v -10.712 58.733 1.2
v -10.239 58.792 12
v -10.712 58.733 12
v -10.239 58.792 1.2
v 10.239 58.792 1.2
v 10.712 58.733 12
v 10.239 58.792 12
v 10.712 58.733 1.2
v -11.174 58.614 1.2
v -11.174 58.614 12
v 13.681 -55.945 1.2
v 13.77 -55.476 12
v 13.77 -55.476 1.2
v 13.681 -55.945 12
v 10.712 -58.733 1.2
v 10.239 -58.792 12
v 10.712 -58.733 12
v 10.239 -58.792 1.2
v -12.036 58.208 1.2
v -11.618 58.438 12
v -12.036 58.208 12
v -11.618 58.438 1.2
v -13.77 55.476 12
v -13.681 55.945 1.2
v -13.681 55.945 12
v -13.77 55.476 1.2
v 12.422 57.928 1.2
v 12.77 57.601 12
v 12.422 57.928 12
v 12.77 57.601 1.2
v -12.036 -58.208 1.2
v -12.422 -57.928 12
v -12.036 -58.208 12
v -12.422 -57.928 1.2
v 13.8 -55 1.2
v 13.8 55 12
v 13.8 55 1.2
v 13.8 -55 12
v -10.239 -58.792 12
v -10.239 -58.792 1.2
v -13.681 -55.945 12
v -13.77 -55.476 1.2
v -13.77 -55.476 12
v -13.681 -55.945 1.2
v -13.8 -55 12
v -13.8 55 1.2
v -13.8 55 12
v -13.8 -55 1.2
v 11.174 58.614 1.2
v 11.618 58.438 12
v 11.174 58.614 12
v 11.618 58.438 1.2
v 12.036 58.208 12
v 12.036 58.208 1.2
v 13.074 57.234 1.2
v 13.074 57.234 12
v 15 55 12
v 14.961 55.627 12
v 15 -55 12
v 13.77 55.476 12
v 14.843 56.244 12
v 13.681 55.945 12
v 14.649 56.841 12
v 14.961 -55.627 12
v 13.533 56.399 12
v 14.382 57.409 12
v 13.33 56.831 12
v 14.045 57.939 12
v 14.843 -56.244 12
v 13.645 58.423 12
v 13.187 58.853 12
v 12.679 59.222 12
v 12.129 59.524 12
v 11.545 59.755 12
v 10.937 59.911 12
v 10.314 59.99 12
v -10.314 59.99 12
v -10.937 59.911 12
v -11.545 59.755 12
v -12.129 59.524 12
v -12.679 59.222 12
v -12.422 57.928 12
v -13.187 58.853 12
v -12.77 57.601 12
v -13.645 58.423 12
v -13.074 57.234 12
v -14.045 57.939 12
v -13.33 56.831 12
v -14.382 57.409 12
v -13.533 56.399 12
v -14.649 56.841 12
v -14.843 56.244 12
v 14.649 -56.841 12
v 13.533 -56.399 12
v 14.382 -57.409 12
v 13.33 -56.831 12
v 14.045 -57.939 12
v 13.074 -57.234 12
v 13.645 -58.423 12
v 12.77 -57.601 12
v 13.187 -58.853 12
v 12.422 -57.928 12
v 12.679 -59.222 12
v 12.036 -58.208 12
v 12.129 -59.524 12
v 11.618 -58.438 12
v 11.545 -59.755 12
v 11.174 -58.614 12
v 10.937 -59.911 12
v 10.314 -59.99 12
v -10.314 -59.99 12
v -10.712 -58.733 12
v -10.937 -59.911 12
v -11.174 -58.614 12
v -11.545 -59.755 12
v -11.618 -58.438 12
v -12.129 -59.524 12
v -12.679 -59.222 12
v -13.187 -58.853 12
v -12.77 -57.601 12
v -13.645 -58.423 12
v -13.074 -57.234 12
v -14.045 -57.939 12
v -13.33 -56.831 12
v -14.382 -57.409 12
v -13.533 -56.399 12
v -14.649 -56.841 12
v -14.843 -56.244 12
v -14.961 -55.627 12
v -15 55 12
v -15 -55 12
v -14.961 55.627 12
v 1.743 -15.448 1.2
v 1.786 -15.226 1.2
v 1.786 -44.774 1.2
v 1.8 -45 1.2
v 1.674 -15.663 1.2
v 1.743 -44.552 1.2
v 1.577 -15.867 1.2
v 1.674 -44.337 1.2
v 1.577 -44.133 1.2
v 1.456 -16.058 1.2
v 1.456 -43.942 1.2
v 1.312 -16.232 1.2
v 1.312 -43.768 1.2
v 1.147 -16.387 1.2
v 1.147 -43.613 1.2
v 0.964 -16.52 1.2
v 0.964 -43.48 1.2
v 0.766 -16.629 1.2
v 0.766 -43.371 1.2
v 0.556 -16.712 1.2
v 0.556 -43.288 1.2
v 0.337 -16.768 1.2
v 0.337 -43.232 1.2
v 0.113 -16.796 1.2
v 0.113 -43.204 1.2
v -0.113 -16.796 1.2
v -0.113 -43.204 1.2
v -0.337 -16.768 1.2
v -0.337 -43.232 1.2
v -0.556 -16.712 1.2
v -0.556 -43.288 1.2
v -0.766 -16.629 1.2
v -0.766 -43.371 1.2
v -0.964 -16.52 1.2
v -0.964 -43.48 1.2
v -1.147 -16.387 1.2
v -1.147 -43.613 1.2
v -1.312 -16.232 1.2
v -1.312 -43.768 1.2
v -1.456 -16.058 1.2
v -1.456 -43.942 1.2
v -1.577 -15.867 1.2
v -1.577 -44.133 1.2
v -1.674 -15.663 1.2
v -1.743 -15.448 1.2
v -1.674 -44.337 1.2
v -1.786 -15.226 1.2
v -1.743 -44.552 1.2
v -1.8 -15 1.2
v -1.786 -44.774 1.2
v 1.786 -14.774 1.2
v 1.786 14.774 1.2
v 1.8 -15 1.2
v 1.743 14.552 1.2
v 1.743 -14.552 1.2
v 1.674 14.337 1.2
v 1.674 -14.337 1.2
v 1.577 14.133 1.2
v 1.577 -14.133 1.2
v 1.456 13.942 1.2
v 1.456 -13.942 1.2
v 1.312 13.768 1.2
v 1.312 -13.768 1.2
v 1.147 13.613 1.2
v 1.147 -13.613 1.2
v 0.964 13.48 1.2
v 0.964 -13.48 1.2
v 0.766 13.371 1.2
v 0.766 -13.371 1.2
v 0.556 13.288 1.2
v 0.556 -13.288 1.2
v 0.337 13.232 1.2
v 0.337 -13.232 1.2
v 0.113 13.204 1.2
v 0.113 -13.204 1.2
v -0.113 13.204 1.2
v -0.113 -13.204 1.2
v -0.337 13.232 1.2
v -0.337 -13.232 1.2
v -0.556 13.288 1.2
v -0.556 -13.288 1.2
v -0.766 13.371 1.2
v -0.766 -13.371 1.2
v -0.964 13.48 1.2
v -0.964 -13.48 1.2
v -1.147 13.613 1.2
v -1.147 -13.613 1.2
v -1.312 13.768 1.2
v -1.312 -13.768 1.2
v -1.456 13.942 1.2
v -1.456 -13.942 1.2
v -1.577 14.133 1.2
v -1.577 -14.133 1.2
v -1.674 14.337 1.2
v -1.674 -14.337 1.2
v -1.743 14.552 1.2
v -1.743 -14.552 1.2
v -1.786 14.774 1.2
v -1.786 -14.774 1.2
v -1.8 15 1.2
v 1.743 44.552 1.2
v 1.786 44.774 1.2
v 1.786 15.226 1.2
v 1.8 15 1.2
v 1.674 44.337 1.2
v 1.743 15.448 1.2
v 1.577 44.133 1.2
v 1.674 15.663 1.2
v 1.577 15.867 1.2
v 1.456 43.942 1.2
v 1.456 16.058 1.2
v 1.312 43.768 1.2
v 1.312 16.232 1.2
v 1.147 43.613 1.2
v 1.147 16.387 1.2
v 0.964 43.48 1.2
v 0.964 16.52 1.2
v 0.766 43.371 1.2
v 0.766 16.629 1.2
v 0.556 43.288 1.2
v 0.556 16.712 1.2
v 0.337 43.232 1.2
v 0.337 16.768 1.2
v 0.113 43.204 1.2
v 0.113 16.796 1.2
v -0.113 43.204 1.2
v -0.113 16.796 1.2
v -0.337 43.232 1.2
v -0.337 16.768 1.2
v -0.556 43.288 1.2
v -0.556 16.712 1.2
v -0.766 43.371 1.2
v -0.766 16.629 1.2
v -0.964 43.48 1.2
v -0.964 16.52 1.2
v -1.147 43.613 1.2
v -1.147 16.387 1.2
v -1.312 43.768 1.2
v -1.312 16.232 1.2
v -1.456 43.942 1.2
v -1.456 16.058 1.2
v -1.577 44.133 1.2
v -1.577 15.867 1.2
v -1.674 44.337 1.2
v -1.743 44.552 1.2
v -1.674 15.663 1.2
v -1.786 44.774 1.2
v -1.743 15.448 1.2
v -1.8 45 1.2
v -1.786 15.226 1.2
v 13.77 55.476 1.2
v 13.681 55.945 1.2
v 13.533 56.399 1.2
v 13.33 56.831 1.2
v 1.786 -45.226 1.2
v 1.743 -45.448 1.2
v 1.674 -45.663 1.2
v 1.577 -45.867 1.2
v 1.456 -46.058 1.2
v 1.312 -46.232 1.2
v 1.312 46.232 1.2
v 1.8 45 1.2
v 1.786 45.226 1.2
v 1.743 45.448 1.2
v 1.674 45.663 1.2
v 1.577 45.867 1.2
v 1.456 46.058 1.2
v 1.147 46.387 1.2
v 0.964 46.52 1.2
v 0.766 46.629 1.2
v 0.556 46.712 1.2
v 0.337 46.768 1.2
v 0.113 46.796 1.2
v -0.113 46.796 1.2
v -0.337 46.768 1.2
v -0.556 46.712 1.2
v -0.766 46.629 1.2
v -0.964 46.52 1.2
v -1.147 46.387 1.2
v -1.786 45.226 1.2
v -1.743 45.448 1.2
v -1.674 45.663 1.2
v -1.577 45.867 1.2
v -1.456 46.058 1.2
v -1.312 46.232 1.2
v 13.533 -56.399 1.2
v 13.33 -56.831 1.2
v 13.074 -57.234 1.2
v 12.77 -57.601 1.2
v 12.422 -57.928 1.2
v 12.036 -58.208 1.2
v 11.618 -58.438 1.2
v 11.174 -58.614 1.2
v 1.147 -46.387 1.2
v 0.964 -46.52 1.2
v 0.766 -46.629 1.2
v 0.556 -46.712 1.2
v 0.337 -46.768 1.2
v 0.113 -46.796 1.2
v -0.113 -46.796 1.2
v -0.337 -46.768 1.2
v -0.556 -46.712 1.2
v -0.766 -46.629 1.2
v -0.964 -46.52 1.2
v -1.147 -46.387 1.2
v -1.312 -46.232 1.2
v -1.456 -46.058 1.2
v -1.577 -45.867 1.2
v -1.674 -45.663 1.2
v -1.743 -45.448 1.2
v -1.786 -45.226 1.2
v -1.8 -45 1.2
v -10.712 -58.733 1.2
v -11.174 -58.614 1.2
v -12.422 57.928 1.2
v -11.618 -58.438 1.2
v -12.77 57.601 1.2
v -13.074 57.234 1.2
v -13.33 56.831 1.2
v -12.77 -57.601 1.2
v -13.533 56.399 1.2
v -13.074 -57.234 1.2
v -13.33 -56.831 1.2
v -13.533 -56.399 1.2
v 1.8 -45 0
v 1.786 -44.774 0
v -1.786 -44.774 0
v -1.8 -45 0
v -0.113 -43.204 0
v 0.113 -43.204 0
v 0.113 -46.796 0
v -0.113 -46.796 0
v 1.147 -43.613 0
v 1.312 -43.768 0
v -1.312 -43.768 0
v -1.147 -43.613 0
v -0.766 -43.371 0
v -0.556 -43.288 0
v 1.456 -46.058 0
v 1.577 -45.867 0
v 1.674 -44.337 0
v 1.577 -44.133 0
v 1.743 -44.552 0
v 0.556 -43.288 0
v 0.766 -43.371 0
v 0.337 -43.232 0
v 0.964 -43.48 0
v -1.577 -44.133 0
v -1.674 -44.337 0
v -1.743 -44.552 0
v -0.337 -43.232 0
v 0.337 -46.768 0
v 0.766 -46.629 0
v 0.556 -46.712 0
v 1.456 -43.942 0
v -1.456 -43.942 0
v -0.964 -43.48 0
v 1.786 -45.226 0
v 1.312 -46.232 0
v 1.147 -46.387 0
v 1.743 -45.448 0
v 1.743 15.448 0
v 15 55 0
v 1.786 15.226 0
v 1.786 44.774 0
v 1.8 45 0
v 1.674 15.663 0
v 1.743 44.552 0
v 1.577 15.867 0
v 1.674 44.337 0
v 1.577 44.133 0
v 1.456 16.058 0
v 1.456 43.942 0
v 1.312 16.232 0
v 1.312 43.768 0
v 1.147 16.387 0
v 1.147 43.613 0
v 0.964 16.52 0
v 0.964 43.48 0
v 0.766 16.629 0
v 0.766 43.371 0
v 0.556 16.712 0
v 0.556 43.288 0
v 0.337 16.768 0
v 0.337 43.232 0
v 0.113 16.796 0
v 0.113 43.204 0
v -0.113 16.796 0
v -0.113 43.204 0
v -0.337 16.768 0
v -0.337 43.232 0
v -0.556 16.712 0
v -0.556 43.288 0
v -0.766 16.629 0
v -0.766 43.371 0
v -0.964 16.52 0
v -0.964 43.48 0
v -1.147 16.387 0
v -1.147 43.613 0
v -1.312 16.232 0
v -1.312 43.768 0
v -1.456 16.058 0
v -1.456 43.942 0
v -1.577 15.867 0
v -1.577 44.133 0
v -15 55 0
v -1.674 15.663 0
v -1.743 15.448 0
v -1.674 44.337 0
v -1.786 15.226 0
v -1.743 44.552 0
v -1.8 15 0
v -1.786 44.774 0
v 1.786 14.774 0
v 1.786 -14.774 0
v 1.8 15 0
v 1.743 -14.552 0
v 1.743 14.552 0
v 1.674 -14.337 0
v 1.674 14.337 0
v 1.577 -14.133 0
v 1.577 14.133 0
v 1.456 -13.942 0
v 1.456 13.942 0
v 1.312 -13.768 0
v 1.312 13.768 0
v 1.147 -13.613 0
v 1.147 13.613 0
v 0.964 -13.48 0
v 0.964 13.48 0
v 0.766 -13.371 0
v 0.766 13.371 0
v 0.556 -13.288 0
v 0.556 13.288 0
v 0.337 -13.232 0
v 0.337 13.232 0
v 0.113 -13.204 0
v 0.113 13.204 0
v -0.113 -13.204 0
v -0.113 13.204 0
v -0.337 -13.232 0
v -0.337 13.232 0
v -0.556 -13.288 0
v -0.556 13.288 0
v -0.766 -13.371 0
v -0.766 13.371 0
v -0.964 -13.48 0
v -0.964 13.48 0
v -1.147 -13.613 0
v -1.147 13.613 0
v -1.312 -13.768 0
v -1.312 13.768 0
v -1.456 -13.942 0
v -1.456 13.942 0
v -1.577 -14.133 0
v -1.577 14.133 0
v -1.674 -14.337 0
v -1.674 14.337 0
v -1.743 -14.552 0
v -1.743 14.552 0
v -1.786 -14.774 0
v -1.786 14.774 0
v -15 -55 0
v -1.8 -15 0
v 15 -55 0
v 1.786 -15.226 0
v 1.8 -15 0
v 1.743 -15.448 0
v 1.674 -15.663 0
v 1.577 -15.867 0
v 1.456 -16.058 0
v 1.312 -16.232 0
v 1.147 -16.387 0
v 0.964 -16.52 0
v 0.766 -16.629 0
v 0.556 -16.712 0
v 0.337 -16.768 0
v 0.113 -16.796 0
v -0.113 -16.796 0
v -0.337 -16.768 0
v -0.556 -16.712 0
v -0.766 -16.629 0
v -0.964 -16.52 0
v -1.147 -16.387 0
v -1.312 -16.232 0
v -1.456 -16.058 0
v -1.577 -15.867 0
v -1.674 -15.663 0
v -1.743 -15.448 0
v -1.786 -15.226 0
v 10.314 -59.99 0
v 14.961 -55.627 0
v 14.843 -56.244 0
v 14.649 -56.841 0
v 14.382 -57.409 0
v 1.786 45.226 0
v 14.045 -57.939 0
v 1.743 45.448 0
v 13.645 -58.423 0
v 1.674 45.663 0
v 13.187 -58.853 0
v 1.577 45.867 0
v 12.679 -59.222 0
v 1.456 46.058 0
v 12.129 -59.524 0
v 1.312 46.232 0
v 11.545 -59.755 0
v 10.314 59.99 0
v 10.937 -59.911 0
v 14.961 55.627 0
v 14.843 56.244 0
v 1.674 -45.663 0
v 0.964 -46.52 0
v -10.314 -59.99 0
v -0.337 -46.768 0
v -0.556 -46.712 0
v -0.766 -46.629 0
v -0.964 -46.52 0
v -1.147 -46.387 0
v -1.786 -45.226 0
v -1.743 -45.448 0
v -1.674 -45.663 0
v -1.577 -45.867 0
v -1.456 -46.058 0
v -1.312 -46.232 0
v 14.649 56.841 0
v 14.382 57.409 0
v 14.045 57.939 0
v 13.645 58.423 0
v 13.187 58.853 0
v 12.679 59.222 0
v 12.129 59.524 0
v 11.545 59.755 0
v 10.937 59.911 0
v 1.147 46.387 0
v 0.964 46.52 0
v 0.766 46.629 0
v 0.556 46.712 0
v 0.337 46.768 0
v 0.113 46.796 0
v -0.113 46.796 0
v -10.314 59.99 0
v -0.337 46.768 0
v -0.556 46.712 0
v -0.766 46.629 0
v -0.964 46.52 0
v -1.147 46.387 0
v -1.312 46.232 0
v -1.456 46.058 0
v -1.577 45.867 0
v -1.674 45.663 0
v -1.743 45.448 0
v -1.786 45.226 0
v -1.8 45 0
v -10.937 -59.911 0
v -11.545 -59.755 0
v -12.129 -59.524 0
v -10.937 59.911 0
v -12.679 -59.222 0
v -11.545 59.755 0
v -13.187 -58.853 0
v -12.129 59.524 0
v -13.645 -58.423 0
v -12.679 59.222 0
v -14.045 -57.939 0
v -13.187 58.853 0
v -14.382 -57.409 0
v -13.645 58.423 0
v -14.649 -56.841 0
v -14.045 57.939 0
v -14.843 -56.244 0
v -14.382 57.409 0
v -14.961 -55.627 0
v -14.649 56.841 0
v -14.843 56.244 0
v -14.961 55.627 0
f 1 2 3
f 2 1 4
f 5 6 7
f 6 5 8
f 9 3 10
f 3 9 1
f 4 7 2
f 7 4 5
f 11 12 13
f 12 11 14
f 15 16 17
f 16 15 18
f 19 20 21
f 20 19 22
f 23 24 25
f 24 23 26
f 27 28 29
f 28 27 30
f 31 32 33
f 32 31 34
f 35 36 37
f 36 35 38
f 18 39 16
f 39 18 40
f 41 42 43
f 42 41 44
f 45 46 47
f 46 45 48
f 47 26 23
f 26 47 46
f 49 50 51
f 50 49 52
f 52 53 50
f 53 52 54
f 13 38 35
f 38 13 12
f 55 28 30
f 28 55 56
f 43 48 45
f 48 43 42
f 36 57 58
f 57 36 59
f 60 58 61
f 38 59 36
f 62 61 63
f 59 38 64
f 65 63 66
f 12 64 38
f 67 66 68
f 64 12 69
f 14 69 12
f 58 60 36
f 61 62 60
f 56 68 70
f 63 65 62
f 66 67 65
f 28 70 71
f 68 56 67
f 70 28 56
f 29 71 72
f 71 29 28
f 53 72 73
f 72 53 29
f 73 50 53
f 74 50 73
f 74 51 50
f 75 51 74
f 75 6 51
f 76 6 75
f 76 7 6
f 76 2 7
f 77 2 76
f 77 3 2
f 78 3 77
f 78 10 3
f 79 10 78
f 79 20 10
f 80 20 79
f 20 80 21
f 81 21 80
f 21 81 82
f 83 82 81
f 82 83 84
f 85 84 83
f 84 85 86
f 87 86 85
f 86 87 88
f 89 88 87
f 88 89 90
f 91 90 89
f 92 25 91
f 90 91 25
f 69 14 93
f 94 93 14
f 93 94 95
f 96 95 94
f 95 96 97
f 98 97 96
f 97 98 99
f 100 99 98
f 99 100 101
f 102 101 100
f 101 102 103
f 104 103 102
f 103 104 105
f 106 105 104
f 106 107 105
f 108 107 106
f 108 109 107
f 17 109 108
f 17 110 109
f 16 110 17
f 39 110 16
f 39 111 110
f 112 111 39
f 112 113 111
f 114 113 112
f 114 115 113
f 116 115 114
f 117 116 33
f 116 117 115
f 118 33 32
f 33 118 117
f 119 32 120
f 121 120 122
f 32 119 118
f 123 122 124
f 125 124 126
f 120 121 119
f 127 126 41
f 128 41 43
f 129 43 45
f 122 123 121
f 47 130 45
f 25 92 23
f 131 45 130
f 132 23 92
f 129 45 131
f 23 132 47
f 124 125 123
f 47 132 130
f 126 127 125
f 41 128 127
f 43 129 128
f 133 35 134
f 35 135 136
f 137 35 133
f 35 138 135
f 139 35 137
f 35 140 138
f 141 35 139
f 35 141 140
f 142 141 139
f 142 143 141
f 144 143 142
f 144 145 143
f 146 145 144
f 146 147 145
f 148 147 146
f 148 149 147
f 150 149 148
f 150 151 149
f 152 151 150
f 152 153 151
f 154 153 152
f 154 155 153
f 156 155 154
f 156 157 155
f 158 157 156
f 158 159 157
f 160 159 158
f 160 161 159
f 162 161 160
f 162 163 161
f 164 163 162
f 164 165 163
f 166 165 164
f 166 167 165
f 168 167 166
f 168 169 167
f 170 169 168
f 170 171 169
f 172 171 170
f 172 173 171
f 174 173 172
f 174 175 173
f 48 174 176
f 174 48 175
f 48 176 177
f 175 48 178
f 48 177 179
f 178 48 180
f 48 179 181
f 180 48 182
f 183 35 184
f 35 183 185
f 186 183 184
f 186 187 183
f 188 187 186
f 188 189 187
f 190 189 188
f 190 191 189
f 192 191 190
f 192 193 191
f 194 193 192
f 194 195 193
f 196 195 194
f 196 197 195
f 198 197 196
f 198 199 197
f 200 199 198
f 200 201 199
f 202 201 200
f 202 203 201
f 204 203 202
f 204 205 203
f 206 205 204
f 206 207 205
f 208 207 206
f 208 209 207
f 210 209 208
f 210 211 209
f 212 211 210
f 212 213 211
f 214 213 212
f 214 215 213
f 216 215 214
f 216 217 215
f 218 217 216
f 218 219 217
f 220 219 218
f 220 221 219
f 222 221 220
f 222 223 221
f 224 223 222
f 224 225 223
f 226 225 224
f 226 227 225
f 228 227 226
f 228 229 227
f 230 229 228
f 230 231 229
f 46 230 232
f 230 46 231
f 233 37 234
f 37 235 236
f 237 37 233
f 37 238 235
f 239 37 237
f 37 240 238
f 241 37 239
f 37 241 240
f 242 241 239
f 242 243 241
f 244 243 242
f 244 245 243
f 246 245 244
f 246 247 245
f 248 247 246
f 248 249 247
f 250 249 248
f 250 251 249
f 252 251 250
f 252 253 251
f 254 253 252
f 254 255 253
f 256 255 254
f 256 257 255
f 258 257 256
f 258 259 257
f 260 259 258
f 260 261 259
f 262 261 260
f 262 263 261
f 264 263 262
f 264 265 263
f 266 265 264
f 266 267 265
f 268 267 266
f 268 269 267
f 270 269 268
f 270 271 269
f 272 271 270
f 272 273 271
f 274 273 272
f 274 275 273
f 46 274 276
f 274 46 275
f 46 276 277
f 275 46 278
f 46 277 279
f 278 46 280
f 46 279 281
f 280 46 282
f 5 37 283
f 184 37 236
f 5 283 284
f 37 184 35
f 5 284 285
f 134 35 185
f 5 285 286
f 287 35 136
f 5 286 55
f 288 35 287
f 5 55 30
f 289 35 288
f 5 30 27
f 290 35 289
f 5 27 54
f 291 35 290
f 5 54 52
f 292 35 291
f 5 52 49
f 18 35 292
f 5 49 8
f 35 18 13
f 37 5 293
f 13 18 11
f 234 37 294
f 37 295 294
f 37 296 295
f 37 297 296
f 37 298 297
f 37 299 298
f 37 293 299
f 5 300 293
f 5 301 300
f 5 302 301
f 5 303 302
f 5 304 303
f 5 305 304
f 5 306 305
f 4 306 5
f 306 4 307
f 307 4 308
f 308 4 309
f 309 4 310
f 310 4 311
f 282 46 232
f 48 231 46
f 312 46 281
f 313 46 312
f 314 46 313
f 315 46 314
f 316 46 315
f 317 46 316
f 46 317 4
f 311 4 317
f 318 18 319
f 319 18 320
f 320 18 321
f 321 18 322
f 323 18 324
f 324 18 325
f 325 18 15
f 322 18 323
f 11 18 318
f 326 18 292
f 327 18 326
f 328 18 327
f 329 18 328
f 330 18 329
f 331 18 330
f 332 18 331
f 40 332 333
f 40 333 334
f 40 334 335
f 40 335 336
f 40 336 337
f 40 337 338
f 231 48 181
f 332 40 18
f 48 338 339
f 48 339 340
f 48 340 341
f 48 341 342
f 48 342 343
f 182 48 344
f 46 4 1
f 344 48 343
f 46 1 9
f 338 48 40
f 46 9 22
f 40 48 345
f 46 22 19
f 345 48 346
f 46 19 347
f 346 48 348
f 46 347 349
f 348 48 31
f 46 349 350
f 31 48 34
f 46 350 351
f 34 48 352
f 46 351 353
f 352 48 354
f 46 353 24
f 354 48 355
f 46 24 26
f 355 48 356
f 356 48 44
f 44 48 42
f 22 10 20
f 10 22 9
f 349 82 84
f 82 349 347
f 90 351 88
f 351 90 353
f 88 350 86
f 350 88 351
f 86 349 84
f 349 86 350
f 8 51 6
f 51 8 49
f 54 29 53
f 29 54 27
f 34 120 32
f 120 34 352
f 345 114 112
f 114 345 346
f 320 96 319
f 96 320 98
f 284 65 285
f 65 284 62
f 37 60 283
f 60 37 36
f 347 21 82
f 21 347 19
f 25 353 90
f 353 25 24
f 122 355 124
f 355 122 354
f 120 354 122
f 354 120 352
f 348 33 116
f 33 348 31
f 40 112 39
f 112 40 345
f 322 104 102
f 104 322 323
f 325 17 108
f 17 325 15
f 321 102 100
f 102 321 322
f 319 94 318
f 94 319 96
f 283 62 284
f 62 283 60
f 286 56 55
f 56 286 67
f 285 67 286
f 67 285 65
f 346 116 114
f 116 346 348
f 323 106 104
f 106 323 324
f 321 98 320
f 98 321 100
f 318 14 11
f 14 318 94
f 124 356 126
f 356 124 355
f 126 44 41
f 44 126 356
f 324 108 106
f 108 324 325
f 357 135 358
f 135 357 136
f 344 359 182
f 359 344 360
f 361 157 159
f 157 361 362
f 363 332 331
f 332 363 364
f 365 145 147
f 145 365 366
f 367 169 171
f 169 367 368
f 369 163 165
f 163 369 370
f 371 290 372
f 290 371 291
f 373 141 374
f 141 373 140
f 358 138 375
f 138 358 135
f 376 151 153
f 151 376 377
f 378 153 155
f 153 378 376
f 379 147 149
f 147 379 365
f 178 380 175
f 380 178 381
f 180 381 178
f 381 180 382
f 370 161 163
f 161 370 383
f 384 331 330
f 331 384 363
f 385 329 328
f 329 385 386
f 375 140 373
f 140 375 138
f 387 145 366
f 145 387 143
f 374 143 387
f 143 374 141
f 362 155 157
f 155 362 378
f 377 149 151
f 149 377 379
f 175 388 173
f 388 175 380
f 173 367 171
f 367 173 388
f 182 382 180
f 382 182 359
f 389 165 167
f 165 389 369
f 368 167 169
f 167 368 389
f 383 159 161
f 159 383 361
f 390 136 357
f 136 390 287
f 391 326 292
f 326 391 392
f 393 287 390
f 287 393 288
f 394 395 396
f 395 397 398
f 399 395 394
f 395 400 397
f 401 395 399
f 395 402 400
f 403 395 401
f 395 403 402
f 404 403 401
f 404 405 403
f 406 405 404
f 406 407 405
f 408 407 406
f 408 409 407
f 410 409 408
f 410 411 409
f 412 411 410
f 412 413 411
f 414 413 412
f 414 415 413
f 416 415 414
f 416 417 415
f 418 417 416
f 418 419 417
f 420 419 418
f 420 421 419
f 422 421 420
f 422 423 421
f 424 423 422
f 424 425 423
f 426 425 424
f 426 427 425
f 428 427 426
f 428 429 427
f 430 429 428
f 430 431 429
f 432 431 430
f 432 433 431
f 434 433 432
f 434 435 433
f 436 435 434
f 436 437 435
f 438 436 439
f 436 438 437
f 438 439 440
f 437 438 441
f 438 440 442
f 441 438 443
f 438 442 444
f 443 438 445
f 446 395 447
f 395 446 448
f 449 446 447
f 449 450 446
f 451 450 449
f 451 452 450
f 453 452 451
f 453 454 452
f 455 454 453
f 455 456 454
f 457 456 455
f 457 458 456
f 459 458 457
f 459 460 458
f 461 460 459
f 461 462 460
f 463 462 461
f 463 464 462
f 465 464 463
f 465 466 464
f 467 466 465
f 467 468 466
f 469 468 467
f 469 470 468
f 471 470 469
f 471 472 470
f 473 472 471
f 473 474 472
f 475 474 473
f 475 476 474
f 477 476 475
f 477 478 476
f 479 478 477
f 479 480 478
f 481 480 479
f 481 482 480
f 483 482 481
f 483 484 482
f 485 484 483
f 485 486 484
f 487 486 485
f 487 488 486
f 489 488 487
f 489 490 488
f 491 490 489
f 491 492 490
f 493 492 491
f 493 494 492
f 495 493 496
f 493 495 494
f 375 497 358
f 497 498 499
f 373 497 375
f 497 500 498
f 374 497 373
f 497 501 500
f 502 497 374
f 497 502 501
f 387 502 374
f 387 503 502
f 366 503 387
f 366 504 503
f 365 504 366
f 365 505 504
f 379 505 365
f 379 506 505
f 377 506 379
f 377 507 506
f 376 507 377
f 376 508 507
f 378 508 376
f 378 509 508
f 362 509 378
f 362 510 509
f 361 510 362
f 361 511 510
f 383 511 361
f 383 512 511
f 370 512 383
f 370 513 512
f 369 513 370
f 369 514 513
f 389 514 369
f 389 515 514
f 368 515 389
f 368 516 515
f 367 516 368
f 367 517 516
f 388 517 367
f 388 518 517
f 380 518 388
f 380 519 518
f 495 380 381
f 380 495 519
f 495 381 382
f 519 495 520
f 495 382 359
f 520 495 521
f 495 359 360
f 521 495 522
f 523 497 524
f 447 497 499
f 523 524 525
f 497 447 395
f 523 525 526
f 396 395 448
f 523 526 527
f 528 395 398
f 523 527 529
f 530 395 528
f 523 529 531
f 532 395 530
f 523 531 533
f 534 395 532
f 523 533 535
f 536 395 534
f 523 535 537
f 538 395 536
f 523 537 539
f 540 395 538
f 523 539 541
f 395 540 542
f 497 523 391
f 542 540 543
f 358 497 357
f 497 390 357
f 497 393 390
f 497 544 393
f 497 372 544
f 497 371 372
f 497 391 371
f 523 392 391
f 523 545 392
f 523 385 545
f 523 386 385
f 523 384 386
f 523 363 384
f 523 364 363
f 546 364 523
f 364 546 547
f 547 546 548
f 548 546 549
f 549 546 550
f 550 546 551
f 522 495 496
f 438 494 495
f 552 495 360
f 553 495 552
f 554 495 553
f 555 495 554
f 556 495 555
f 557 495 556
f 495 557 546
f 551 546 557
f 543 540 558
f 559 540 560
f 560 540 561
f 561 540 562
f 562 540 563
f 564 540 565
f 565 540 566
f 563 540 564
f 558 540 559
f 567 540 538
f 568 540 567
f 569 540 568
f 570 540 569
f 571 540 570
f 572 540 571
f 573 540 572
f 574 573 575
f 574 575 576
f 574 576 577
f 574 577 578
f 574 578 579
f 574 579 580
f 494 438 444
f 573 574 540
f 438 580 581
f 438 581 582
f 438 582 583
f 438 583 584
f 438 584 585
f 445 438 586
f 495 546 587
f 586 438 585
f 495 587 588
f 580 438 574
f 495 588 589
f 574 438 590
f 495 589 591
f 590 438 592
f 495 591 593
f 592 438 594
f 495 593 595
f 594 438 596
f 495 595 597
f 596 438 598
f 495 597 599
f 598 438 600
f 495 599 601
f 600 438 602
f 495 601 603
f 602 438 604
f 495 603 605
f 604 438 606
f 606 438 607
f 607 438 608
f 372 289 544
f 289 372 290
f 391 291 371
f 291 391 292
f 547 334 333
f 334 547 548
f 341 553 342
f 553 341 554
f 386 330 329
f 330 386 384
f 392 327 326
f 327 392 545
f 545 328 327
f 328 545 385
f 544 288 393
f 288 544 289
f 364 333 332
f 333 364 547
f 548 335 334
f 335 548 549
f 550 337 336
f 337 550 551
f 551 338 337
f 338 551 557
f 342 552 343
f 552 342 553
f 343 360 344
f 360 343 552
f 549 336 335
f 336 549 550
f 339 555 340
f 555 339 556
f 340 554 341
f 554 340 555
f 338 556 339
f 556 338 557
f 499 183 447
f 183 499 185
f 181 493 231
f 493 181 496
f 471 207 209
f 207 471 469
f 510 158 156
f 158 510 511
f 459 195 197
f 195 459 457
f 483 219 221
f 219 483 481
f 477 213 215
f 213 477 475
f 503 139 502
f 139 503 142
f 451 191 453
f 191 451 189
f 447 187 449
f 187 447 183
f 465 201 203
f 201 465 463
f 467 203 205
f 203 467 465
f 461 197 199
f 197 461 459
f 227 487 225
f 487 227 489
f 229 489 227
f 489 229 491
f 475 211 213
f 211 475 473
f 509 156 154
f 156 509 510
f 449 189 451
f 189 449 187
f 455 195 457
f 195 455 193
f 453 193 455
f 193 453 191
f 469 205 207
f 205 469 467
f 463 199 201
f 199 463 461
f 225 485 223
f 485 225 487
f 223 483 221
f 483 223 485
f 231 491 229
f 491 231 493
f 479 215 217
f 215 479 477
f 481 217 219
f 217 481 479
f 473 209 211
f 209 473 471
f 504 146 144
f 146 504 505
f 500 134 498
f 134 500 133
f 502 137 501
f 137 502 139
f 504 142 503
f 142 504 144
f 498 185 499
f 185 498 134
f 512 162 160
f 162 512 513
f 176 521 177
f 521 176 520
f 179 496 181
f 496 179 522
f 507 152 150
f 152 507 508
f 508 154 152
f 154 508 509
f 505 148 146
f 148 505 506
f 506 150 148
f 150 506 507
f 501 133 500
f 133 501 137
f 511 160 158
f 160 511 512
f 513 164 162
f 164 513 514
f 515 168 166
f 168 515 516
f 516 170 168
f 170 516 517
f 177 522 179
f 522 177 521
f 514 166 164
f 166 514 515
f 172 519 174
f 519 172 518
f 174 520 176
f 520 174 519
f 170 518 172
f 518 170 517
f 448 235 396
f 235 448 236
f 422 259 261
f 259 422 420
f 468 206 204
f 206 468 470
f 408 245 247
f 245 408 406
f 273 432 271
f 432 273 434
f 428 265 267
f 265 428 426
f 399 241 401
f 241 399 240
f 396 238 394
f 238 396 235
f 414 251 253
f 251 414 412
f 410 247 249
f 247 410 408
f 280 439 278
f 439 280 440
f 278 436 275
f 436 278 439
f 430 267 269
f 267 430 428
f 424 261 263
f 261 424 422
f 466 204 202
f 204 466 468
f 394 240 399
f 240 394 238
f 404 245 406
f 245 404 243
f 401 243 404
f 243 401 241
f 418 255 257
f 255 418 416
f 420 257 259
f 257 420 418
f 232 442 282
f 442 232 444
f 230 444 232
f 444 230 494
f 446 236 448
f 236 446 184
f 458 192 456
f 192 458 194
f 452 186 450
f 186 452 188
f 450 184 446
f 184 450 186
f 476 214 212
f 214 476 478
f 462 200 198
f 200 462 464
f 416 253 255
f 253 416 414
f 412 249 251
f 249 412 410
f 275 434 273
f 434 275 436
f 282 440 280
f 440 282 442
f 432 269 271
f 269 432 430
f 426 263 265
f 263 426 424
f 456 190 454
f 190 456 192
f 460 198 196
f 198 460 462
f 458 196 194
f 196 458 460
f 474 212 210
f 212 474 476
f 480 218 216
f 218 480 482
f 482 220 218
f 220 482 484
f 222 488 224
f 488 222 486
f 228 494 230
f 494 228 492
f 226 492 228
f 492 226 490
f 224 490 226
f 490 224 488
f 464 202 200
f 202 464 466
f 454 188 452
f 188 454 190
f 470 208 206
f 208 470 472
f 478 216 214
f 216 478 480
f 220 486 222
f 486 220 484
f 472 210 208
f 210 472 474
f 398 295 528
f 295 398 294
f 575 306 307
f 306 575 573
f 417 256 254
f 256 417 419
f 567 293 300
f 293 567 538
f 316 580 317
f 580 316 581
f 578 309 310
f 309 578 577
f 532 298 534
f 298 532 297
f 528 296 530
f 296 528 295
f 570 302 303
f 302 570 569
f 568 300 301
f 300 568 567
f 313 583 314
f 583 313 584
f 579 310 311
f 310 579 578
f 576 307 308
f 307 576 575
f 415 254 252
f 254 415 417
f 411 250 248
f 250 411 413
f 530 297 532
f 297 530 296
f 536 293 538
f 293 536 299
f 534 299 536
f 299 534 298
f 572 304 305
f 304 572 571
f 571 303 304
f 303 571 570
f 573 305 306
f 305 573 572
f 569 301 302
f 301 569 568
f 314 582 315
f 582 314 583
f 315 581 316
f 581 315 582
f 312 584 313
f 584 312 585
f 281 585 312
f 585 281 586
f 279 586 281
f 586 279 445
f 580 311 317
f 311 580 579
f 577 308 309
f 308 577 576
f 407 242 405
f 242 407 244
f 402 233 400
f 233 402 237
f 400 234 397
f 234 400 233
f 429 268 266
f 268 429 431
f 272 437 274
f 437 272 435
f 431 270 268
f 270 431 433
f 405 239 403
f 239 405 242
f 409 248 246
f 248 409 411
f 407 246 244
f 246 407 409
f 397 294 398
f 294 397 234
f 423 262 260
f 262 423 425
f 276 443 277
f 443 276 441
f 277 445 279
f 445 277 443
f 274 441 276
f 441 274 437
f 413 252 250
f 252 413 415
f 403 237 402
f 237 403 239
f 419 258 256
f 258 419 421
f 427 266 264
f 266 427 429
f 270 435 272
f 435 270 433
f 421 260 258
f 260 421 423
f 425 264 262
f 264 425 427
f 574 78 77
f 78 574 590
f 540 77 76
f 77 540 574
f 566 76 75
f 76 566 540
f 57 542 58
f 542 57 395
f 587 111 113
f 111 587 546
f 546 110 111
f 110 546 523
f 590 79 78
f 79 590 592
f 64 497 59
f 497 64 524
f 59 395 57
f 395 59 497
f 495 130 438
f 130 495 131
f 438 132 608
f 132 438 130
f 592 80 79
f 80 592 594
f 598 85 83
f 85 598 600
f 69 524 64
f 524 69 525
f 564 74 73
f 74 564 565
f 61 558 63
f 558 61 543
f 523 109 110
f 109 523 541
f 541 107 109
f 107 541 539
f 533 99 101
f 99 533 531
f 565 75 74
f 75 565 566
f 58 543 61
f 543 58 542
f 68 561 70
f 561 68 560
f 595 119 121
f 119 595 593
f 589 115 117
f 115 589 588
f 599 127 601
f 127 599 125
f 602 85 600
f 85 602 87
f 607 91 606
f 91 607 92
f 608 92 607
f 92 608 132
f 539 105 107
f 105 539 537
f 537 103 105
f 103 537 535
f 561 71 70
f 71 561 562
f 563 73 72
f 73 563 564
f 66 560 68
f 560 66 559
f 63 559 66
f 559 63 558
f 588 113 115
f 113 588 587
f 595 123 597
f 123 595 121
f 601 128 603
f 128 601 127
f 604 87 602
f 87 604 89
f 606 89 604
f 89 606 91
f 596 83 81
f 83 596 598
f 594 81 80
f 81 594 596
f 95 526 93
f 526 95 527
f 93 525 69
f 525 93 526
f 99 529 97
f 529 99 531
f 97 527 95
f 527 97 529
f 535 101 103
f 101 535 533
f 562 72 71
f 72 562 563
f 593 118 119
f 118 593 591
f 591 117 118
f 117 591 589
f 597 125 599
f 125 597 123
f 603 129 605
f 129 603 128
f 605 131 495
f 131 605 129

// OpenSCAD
$fn = 50;


difference() {
	union() {
		hull() {
			translate(v = [-10.0000000000, 55.0000000000, 0]) {
				cylinder(h = 12, r = 5);
			}
			translate(v = [10.0000000000, 55.0000000000, 0]) {
				cylinder(h = 12, r = 5);
			}
			translate(v = [-10.0000000000, -55.0000000000, 0]) {
				cylinder(h = 12, r = 5);
			}
			translate(v = [10.0000000000, -55.0000000000, 0]) {
				cylinder(h = 12, r = 5);
			}
		}
	}
	union() {
		translate(v = [0, 0, 1.2000000000]) {
			hull() {
				translate(v = [-10.0000000000, 55.0000000000, 0]) {
					cylinder(h = 10.8000000000, r = 3.8000000000);
				}
				translate(v = [10.0000000000, 55.0000000000, 0]) {
					cylinder(h = 10.8000000000, r = 3.8000000000);
				}
				translate(v = [-10.0000000000, -55.0000000000, 0]) {
					cylinder(h = 10.8000000000, r = 3.8000000000);
				}
				translate(v = [10.0000000000, -55.0000000000, 0]) {
					cylinder(h = 10.8000000000, r = 3.8000000000);
				}
			}
		}
		#translate(v = [0.0000000000, -45.0000000000, 0]) {
			cylinder(h = 1.2000000000, r = 1.8000000000);
		}
		#translate(v = [0.0000000000, -15.0000000000, 0]) {
			cylinder(h = 1.2000000000, r = 1.8000000000);
		}
		#translate(v = [0.0000000000, 15.0000000000, 0]) {
			cylinder(h = 1.2000000000, r = 1.8000000000);
		}
		#translate(v = [0.0000000000, 45.0000000000, 0]) {
			cylinder(h = 1.2000000000, r = 1.8000000000);
		}
	}
}
